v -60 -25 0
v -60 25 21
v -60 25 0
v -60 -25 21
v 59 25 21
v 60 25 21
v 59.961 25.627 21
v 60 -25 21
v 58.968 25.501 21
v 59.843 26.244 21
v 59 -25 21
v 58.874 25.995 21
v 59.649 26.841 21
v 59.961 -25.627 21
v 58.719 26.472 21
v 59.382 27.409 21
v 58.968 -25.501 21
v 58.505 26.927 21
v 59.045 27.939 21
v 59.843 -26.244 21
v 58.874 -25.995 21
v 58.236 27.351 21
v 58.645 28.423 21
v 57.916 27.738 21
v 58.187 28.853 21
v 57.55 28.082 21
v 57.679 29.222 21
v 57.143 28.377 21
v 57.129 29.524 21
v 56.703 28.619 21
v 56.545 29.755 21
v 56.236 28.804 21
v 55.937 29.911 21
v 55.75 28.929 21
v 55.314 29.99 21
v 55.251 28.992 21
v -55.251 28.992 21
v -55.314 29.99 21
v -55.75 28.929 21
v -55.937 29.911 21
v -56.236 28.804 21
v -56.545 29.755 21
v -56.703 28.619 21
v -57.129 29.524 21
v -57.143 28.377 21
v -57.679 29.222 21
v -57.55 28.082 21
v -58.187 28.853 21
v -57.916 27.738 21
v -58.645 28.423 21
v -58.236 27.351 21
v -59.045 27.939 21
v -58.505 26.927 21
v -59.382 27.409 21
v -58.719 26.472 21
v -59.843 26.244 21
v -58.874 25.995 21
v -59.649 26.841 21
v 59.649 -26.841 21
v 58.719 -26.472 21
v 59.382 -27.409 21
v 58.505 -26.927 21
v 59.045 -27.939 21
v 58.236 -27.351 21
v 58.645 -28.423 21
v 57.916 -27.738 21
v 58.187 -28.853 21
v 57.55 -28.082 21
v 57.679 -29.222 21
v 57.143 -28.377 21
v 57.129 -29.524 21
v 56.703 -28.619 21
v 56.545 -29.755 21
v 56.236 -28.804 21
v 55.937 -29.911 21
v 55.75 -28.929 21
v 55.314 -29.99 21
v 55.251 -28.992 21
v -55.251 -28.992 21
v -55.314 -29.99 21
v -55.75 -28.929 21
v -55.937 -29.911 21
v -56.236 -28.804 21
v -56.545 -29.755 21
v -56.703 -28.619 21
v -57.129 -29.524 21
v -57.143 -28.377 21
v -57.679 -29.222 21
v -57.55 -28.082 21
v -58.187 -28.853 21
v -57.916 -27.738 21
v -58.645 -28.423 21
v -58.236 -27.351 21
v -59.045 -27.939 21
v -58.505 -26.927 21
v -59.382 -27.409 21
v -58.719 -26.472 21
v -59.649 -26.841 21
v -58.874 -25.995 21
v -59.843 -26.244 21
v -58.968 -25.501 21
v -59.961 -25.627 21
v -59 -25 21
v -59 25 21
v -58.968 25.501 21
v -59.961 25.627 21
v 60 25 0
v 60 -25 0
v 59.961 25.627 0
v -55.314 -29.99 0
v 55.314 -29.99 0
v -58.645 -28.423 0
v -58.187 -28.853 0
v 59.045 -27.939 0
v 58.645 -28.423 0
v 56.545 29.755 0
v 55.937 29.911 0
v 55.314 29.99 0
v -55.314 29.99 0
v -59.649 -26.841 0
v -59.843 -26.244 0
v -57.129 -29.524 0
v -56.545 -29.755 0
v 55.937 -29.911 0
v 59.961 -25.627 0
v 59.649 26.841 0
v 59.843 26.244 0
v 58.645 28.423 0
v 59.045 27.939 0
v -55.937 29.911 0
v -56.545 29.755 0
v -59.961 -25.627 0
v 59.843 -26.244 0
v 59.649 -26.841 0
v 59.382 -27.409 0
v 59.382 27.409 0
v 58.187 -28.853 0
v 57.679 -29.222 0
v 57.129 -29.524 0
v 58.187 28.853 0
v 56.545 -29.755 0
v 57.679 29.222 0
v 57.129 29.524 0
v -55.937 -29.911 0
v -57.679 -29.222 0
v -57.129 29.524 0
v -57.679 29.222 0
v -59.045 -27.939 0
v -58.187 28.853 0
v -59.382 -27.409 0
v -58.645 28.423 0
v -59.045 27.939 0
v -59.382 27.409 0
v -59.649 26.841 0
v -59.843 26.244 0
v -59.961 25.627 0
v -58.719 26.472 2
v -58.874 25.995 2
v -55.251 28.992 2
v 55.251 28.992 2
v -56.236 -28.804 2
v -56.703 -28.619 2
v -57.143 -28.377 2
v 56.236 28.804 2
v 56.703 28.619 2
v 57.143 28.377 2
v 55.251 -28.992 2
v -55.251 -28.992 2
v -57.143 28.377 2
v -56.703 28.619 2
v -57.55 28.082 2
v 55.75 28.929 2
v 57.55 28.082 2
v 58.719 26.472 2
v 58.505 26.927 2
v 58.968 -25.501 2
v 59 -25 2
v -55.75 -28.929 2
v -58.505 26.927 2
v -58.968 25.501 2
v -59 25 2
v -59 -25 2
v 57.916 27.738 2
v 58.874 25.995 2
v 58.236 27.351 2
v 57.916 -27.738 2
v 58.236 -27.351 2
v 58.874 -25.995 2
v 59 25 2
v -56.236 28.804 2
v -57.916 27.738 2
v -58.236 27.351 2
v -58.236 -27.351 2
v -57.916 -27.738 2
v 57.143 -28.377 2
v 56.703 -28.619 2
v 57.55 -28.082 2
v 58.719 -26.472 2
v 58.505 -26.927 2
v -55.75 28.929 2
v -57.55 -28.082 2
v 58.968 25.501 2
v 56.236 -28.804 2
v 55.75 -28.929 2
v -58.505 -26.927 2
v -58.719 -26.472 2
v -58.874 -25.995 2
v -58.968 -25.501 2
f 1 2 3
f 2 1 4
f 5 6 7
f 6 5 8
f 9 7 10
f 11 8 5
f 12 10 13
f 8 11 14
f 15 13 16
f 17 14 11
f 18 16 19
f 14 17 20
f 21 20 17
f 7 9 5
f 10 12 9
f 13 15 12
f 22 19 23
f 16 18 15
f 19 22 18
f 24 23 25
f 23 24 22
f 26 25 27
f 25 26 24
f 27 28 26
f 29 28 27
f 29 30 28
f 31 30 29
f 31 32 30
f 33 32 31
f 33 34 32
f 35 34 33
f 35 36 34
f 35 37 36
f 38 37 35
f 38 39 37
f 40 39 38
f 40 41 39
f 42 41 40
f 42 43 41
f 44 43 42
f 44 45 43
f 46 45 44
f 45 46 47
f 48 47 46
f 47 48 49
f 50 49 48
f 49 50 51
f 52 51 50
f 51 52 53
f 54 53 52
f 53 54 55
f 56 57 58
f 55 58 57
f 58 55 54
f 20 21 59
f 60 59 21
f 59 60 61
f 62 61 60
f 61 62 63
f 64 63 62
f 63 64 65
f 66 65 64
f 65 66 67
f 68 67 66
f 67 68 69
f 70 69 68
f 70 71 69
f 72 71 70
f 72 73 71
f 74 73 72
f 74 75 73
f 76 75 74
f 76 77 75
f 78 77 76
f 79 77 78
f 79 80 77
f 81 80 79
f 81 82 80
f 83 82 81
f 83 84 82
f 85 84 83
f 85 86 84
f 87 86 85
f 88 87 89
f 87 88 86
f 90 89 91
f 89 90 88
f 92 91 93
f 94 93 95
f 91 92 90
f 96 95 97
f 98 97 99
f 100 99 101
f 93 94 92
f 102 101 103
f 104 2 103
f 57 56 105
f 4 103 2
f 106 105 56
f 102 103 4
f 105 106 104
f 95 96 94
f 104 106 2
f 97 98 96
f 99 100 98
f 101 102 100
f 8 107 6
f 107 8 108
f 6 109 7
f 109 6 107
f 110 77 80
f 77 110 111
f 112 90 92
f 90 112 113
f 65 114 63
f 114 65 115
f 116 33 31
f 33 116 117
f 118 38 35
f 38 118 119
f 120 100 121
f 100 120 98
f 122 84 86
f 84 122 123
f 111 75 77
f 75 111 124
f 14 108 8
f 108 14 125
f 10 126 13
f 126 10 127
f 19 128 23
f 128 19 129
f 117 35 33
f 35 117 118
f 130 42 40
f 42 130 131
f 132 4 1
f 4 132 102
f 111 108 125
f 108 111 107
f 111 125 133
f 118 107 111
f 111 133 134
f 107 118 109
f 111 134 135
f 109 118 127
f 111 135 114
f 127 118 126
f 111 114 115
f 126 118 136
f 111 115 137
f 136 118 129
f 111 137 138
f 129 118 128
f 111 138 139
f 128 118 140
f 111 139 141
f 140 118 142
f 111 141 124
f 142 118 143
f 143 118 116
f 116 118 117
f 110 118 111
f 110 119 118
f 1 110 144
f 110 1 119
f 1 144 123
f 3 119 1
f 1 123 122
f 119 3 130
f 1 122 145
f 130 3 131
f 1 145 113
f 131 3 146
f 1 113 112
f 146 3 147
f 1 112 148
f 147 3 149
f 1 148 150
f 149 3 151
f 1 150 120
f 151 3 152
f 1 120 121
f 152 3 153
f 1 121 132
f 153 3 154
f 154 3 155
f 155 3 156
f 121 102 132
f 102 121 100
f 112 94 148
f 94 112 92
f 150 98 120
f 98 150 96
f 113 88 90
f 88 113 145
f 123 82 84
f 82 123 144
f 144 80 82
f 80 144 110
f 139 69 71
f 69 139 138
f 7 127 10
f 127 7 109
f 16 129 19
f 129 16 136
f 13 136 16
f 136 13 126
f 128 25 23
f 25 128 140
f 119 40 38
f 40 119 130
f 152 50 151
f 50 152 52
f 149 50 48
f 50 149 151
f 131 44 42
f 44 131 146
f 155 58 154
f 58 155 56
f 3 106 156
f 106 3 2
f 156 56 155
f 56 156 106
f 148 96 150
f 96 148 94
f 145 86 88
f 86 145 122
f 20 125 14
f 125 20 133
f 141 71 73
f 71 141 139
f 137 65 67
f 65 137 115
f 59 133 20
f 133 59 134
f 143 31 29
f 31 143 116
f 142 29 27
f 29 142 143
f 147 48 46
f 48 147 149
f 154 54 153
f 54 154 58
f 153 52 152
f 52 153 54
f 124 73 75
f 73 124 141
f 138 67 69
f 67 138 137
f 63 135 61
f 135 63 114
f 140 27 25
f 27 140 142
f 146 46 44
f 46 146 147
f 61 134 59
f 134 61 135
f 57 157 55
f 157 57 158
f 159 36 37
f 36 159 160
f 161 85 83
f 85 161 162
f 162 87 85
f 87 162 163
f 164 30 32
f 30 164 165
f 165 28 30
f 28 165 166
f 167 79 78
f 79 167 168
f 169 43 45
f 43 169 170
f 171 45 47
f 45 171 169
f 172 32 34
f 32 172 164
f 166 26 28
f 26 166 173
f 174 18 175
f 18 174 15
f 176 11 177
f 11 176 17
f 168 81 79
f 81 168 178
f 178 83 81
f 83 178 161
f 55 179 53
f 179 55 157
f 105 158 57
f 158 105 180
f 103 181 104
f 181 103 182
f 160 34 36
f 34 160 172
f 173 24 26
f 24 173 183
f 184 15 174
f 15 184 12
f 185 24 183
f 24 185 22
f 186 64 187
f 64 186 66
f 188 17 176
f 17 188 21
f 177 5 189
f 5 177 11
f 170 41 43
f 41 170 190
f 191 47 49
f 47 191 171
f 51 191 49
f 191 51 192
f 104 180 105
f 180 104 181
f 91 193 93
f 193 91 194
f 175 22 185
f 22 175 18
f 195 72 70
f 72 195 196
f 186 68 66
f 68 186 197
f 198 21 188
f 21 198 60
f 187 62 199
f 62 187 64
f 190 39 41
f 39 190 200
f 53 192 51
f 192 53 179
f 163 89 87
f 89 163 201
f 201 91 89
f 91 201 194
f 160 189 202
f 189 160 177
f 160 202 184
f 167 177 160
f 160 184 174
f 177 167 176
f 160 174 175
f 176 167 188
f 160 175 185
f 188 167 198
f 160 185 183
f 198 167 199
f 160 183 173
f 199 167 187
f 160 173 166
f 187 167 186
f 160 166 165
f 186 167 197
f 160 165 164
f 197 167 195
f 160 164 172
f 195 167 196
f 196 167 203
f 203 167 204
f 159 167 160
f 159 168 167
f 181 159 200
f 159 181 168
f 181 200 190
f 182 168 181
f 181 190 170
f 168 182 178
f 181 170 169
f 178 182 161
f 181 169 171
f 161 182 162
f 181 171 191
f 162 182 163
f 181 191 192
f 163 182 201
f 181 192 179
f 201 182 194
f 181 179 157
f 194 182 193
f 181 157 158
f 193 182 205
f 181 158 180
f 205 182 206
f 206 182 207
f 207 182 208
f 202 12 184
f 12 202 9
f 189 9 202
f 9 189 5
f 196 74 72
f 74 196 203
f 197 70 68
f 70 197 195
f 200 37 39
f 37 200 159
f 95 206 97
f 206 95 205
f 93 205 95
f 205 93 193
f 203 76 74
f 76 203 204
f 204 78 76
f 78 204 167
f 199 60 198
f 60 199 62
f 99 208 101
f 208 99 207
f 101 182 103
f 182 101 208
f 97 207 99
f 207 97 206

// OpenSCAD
$fn = 50;


difference() {
	union() {
		hull() {
			translate(v = [-55.0000000000, 25.0000000000, 0]) {
				cylinder(h = 21, r = 5);
			}
			translate(v = [55.0000000000, 25.0000000000, 0]) {
				cylinder(h = 21, r = 5);
			}
			translate(v = [-55.0000000000, -25.0000000000, 0]) {
				cylinder(h = 21, r = 5);
			}
			translate(v = [55.0000000000, -25.0000000000, 0]) {
				cylinder(h = 21, r = 5);
			}
		}
	}
	union() {
		translate(v = [0, 0, 2]) {
			hull() {
				translate(v = [-55.0000000000, 25.0000000000, 0]) {
					cylinder(h = 19, r = 4);
				}
				translate(v = [55.0000000000, 25.0000000000, 0]) {
					cylinder(h = 19, r = 4);
				}
				translate(v = [-55.0000000000, -25.0000000000, 0]) {
					cylinder(h = 19, r = 4);
				}
				translate(v = [55.0000000000, -25.0000000000, 0]) {
					cylinder(h = 19, r = 4);
				}
			}
		}
	}
}
